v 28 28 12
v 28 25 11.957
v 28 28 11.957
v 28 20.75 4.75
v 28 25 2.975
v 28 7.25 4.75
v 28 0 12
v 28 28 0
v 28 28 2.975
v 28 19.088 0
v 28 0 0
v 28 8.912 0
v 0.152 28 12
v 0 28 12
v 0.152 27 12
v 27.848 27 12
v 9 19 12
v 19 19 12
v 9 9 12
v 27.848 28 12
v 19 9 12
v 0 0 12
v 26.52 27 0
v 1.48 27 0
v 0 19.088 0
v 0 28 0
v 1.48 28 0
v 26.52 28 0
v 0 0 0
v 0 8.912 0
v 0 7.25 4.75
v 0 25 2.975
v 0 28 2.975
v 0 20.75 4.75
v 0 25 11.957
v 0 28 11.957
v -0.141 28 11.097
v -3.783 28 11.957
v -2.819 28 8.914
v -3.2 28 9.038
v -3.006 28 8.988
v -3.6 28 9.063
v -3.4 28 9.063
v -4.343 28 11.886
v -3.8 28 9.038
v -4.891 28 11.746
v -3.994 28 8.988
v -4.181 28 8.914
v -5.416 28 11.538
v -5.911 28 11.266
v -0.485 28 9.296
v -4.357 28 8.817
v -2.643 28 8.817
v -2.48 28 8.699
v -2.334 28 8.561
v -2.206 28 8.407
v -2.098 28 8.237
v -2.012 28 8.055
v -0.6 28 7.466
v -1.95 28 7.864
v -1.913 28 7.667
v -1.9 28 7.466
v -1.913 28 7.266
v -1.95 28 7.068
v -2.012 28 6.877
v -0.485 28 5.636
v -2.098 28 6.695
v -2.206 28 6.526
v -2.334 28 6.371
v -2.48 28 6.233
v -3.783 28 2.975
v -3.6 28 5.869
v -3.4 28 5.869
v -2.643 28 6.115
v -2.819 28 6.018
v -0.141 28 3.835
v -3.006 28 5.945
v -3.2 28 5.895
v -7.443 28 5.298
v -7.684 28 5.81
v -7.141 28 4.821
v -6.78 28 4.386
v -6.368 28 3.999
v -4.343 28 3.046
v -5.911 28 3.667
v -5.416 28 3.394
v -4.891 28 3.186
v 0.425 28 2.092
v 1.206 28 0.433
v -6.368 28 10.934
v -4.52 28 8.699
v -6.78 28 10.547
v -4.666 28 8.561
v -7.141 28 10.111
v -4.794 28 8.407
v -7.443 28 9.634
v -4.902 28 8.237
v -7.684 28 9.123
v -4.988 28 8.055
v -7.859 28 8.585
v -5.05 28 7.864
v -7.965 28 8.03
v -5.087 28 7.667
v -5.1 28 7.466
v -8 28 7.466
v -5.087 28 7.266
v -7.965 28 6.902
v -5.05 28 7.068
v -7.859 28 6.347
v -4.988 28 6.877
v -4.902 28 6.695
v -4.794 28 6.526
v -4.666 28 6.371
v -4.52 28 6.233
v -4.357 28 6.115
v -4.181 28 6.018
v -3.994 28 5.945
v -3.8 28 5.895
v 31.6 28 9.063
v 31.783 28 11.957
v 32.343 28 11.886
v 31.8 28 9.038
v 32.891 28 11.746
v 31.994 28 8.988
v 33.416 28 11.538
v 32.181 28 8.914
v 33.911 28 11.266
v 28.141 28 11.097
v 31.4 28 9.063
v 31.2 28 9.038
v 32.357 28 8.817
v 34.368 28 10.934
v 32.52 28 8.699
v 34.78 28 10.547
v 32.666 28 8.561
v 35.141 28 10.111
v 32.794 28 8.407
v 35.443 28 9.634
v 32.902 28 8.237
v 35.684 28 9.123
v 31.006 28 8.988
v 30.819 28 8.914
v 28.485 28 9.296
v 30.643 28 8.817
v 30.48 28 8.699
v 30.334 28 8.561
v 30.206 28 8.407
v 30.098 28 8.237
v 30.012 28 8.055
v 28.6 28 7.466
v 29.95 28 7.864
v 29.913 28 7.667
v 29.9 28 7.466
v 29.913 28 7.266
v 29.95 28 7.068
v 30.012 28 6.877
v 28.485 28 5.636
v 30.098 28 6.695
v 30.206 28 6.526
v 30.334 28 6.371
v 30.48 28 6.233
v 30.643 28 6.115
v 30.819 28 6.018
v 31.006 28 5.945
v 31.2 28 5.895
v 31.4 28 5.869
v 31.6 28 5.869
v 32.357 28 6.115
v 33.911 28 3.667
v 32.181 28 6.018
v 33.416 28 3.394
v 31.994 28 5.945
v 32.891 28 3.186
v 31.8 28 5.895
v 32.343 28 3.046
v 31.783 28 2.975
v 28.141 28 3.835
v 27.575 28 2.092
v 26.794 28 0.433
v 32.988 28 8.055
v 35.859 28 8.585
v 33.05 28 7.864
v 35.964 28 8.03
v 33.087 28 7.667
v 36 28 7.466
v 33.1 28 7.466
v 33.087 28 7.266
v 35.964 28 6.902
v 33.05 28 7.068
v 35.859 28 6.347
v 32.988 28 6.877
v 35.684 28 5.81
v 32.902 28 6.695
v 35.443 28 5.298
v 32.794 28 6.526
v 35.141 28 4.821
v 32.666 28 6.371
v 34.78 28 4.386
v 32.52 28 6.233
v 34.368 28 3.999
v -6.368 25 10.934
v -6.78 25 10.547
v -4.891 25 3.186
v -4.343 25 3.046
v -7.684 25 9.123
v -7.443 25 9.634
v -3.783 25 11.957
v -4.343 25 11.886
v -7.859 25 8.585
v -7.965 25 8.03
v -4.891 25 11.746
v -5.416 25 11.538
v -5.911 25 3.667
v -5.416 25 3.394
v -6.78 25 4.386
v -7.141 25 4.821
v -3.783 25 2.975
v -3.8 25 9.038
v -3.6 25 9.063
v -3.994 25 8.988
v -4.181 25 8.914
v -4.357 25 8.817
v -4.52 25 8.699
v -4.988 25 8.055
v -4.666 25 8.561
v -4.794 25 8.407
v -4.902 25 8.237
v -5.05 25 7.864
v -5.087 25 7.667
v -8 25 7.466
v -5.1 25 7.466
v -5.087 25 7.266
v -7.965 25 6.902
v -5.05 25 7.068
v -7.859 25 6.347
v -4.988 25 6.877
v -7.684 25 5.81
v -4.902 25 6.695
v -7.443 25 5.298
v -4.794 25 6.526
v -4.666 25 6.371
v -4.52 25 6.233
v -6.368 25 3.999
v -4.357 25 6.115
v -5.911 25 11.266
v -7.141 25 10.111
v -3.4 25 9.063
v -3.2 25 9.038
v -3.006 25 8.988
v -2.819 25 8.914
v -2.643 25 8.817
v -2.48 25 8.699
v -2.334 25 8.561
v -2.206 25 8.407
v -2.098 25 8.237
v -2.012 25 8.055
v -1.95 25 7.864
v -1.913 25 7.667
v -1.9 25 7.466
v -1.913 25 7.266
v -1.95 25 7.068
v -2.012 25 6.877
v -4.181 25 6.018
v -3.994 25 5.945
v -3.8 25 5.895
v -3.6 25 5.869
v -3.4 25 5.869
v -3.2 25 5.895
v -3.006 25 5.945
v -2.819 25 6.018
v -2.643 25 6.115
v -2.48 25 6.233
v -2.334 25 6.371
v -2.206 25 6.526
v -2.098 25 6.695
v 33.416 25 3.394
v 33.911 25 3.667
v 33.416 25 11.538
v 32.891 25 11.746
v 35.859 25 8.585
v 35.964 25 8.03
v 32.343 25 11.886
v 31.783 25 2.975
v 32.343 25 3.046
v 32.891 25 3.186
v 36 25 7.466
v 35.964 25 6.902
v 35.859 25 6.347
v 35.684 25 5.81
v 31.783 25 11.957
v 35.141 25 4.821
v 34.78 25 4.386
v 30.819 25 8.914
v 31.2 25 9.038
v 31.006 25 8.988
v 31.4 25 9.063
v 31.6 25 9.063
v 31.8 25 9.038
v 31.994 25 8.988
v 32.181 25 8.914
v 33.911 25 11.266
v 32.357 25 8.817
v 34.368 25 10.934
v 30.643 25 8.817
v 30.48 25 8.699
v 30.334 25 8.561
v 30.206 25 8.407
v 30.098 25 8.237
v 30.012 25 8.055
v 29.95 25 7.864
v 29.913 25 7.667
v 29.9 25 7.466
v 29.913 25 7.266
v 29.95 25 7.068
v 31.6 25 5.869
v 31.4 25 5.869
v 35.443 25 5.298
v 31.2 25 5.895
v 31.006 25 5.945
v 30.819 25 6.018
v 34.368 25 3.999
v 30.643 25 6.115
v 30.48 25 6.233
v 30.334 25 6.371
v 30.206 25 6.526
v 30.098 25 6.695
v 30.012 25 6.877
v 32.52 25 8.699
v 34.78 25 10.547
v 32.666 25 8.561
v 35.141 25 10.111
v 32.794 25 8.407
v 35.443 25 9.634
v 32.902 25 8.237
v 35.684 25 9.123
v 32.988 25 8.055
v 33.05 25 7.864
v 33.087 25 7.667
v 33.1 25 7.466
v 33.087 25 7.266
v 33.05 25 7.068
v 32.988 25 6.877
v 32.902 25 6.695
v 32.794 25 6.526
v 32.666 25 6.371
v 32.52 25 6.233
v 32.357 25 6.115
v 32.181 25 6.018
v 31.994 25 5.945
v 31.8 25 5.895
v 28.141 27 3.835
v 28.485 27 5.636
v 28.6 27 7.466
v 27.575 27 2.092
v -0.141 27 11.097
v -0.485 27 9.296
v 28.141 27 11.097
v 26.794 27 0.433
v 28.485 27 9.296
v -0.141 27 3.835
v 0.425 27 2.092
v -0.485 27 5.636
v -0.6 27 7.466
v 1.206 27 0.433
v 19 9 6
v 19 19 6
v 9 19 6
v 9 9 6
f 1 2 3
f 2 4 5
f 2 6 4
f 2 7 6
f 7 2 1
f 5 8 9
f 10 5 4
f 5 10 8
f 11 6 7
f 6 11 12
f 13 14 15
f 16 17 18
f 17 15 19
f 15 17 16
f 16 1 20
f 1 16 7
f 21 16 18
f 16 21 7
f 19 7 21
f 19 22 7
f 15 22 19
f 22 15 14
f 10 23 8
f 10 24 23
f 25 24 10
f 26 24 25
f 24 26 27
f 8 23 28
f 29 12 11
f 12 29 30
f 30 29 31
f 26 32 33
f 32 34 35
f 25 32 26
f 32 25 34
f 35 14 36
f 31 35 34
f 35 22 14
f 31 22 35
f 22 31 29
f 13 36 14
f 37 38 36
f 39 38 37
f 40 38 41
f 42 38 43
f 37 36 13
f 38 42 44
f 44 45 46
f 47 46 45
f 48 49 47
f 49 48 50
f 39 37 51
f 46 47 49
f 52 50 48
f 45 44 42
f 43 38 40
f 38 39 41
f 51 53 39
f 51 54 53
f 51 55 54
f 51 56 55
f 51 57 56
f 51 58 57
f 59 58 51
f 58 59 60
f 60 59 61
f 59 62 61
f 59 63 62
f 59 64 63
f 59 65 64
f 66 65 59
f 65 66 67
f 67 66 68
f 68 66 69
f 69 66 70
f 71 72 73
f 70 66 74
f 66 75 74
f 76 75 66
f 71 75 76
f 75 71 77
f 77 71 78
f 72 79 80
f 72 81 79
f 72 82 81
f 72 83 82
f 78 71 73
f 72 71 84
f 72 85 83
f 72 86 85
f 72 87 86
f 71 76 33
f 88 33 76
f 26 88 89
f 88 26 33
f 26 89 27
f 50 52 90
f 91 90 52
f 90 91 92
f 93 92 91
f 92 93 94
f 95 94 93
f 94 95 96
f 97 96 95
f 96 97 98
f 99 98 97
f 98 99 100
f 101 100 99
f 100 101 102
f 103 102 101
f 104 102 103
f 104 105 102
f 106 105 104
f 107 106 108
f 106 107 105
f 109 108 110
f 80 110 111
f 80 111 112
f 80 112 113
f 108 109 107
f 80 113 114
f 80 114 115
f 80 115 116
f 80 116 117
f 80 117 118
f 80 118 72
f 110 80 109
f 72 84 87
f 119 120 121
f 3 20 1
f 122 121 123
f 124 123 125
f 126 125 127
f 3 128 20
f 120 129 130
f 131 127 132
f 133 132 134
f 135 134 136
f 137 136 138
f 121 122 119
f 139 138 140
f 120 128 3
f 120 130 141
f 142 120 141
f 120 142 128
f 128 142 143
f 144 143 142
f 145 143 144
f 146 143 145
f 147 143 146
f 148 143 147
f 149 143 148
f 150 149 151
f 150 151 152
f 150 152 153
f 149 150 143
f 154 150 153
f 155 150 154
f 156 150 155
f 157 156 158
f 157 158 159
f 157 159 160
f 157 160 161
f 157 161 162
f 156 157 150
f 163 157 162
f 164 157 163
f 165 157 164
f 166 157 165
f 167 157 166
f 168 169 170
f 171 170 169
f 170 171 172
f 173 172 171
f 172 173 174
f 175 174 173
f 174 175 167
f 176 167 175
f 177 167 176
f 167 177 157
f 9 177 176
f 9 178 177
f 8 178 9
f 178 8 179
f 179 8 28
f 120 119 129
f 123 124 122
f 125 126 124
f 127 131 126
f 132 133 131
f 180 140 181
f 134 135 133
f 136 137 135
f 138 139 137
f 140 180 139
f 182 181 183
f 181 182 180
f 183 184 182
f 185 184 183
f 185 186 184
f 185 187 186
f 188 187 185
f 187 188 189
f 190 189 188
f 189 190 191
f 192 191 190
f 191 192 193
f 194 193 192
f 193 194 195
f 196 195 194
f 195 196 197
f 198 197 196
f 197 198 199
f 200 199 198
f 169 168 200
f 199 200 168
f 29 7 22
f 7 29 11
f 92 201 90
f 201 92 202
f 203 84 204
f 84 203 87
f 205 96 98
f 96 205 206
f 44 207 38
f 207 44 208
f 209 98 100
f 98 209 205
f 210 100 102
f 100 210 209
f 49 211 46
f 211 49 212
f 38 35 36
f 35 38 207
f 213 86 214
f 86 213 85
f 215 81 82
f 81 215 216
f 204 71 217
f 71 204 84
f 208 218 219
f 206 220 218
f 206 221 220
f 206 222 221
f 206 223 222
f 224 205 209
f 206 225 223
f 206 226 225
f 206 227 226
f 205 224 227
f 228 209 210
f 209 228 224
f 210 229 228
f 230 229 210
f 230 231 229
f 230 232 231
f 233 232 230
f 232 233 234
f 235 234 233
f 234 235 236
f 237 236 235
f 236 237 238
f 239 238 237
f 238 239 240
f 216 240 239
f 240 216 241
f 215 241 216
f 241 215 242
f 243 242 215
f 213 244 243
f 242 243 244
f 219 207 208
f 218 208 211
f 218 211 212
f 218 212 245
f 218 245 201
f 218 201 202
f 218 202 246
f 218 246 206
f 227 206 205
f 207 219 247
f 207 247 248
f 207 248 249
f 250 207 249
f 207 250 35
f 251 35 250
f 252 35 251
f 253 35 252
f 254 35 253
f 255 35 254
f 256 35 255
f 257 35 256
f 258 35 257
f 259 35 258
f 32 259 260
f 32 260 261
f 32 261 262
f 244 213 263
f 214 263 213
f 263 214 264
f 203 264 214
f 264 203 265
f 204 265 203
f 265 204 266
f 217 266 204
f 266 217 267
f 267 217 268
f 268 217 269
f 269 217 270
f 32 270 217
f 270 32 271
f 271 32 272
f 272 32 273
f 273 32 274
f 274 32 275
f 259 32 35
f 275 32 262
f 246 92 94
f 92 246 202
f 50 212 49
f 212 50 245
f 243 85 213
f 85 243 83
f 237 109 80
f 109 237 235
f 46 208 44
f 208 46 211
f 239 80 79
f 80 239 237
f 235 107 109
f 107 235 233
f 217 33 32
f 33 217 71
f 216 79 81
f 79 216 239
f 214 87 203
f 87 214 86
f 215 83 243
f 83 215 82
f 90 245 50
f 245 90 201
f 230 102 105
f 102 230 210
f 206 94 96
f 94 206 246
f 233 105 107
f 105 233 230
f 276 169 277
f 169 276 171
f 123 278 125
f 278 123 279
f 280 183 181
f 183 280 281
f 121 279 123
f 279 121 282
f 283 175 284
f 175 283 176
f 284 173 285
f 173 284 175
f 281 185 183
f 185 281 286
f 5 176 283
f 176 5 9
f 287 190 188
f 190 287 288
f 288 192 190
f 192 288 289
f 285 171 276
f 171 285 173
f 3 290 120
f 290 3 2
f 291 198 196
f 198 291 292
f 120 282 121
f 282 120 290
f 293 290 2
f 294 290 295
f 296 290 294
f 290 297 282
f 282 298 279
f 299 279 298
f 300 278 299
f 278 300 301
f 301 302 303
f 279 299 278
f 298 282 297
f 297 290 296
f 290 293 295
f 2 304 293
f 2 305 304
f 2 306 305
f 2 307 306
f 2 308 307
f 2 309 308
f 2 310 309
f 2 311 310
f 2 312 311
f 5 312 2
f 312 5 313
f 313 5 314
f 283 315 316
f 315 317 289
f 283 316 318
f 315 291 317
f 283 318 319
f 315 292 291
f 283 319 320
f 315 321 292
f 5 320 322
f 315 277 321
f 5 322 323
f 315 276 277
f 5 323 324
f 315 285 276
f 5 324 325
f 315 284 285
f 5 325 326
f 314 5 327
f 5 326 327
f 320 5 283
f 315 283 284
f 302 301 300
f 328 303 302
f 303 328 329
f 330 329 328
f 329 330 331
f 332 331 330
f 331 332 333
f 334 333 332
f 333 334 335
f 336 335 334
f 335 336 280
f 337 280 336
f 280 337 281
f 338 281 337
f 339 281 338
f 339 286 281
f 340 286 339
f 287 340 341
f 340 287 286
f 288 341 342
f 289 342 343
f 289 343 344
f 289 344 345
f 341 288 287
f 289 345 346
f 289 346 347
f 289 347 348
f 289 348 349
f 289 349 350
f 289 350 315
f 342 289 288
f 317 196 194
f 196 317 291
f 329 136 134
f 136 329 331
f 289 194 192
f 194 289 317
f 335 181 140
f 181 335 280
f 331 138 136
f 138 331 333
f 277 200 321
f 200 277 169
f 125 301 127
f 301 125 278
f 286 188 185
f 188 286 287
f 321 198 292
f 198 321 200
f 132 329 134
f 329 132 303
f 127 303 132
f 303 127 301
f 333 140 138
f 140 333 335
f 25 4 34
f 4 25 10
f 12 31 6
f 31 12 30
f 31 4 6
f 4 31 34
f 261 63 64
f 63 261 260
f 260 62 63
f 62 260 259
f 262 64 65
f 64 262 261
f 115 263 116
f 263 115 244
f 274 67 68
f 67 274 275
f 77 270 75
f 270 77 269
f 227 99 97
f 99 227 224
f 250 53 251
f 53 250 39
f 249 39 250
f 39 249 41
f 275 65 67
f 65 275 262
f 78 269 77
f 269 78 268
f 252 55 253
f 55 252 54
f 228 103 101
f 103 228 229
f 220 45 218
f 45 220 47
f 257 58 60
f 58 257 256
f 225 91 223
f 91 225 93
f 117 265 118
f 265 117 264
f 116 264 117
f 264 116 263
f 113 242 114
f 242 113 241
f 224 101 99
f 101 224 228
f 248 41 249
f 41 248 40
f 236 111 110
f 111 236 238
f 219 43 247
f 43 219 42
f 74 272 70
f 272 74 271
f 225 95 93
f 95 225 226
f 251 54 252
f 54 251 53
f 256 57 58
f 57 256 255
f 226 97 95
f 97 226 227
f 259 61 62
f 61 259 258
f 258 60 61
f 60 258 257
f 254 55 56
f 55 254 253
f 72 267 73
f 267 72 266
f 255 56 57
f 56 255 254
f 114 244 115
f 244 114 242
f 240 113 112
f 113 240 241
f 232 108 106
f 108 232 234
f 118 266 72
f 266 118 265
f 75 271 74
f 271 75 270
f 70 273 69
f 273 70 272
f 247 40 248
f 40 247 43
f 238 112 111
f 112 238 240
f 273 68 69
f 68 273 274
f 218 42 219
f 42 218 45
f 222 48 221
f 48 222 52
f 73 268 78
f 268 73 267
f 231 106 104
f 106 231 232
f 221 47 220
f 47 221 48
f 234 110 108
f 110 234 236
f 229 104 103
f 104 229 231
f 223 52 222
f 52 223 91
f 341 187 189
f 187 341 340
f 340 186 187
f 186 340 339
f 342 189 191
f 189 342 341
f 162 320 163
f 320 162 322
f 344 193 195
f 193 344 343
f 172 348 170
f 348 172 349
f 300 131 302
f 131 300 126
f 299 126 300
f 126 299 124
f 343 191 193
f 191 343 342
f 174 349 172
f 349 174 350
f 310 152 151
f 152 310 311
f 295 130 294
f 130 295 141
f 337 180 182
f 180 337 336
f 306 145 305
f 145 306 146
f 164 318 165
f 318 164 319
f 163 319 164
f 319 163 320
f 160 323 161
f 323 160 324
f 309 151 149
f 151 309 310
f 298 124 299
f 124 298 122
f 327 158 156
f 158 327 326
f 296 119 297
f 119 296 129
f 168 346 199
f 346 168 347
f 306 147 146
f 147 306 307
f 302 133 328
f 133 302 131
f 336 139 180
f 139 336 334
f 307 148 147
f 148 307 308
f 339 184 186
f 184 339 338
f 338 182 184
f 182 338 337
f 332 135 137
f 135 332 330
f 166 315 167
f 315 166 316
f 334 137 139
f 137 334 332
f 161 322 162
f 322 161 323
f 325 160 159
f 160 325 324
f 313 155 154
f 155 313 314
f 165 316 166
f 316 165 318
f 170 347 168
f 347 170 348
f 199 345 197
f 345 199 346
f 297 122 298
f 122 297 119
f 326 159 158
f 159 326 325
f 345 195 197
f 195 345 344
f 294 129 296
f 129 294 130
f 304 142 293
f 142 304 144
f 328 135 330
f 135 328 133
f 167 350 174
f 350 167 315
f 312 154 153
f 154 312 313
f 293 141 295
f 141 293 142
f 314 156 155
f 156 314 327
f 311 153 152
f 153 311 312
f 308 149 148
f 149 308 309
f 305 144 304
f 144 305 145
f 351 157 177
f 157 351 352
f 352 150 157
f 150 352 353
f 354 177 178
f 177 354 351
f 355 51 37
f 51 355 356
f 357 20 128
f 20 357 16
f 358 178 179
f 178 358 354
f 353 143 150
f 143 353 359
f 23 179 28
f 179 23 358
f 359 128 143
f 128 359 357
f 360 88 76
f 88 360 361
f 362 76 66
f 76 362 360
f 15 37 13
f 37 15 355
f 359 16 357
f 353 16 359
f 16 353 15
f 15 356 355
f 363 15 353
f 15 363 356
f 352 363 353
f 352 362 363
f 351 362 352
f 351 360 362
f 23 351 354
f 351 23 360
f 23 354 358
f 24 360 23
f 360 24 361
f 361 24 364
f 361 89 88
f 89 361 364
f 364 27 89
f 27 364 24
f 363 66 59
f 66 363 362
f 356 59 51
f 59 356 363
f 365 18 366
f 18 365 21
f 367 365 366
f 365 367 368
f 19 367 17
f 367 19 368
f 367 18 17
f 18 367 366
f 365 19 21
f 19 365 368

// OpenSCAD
/*
  =============================================================================
  02_Carrinho_X.scad - Carrinho do Eixo X (GEOMETRIA CORRIGIDA DEFINITIVA)
  =============================================================================
  Correções aplicadas:
    - Flange do motor: orelhas independentes para motor_mount_spacing=35mm
    - Geometria redundante removida (cubo interno desnecessário)
    - Canal dovetail_female_x com orientação correta
    - Encaixe para trilho Y (socket retangular)
    - 1 ÚNICO COMPONENTE CONECTADO no STL
  
  Orientação de impressão: Z=0 no leito (fundo do carrinho).
  =============================================================================
*/

include <00_Parametros.scad>;

module carrinho_x() {
  // Dimensões do corpo principal
  cx_length = 28.0;  // X (comprimento ao longo do trilho)
  cx_width  = 28.0;  // Y (largura transversal)
  cx_height = 12.0;  // Z (altura total)

  // Posição Y do canal dovetail (centro do carrinho)
  dt_local_y = cx_width / 2;  // Y=14

  // Motor X: eixo apontando para +Y (em direção à cremalheira)
  // O motor fica na face Y+ do carrinho
  motor_z_local = (base_h + tooth_height / 2 + gear_pitch_radius) - base_h;
  // = tooth_height/2 + gear_pitch_radius ≈ 1.1 + 6.366 = 7.466mm
  motor_y_local = cx_width - 3.0;  // Perto da face +Y

  // Posição X dos furos de montagem do motor (35mm c/c)
  motor_cx = cx_length / 2; // Centro do carrinho em X
  hole_left_x  = motor_cx - motor_flange_dist/2;  // -3.5
  hole_right_x = motor_cx + motor_flange_dist/2;  // 31.5

  // Socket para o trilho Y (abertura superior)
  socket_w = 10.0;  // largura do encaixe em X
  socket_d = 10.0;  // profundidade em Y
  socket_h = 6.0;   // altura do encaixe em Z

  difference() {
    union() {
      color([0.35, 0.42, 0.48]) {
        // ====== CORPO PRINCIPAL ======
        cube([cx_length, cx_width, cx_height]);

        // ====== ORELHAS DO MOTOR (independentes, conectadas por braços) ======

        // Orelha esquerda (X = hole_left_x = -3.5)
        hull() {
          // Boss da orelha
          translate([hole_left_x, motor_y_local, motor_z_local])
            rotate([-90, 0, 0])
              cylinder(r=wall_screw, h=3.0);
          // Conexão ao corpo principal
          translate([0, motor_y_local, motor_z_local])
            rotate([-90, 0, 0])
              cylinder(r=wall_screw, h=3.0);
        }

        // Orelha direita (X = hole_right_x = 31.5)
        hull() {
          translate([hole_right_x, motor_y_local, motor_z_local])
            rotate([-90, 0, 0])
              cylinder(r=wall_screw, h=3.0);
          translate([cx_length, motor_y_local, motor_z_local])
            rotate([-90, 0, 0])
              cylinder(r=wall_screw, h=3.0);
        }
      }
    }

    // ====== CANAL DOVETAIL FÊMEA (corte no fundo) ======
    translate([0, dt_local_y, 0])
      dovetail_female_x(length=cx_length);

    // ====== FUROS M3 DE MONTAGEM DO MOTOR ======
    // Furo esquerdo
    translate([hole_left_x, motor_y_local - EPS, motor_z_local])
      rotate([-90, 0, 0])
        cylinder(r=motor_flange_hole_r, h=20);

    // Furo direito
    translate([hole_right_x, motor_y_local - EPS, motor_z_local])
      rotate([-90, 0, 0])
        cylinder(r=motor_flange_hole_r, h=20);

    // ====== REBAIXO PARA O CORPO DO MOTOR ======
    translate([motor_cx, motor_y_local + 2.0, motor_z_local])
      rotate([-90, 0, 0])
        cylinder(r=motor_body_r + 0.5, h=motor_body_h + 5);

    // ====== SOCKET PARA O TRILHO Y ======
    // Encaixe retangular no topo do carrinho (face Z+)
    translate([cx_length/2 - socket_w/2, cx_width/2 - socket_d/2, cx_height - socket_h])
      cube([socket_w, socket_d, socket_h + EPS]);
  }
}

// Renderização para impressão/exportação
carrinho_x();
